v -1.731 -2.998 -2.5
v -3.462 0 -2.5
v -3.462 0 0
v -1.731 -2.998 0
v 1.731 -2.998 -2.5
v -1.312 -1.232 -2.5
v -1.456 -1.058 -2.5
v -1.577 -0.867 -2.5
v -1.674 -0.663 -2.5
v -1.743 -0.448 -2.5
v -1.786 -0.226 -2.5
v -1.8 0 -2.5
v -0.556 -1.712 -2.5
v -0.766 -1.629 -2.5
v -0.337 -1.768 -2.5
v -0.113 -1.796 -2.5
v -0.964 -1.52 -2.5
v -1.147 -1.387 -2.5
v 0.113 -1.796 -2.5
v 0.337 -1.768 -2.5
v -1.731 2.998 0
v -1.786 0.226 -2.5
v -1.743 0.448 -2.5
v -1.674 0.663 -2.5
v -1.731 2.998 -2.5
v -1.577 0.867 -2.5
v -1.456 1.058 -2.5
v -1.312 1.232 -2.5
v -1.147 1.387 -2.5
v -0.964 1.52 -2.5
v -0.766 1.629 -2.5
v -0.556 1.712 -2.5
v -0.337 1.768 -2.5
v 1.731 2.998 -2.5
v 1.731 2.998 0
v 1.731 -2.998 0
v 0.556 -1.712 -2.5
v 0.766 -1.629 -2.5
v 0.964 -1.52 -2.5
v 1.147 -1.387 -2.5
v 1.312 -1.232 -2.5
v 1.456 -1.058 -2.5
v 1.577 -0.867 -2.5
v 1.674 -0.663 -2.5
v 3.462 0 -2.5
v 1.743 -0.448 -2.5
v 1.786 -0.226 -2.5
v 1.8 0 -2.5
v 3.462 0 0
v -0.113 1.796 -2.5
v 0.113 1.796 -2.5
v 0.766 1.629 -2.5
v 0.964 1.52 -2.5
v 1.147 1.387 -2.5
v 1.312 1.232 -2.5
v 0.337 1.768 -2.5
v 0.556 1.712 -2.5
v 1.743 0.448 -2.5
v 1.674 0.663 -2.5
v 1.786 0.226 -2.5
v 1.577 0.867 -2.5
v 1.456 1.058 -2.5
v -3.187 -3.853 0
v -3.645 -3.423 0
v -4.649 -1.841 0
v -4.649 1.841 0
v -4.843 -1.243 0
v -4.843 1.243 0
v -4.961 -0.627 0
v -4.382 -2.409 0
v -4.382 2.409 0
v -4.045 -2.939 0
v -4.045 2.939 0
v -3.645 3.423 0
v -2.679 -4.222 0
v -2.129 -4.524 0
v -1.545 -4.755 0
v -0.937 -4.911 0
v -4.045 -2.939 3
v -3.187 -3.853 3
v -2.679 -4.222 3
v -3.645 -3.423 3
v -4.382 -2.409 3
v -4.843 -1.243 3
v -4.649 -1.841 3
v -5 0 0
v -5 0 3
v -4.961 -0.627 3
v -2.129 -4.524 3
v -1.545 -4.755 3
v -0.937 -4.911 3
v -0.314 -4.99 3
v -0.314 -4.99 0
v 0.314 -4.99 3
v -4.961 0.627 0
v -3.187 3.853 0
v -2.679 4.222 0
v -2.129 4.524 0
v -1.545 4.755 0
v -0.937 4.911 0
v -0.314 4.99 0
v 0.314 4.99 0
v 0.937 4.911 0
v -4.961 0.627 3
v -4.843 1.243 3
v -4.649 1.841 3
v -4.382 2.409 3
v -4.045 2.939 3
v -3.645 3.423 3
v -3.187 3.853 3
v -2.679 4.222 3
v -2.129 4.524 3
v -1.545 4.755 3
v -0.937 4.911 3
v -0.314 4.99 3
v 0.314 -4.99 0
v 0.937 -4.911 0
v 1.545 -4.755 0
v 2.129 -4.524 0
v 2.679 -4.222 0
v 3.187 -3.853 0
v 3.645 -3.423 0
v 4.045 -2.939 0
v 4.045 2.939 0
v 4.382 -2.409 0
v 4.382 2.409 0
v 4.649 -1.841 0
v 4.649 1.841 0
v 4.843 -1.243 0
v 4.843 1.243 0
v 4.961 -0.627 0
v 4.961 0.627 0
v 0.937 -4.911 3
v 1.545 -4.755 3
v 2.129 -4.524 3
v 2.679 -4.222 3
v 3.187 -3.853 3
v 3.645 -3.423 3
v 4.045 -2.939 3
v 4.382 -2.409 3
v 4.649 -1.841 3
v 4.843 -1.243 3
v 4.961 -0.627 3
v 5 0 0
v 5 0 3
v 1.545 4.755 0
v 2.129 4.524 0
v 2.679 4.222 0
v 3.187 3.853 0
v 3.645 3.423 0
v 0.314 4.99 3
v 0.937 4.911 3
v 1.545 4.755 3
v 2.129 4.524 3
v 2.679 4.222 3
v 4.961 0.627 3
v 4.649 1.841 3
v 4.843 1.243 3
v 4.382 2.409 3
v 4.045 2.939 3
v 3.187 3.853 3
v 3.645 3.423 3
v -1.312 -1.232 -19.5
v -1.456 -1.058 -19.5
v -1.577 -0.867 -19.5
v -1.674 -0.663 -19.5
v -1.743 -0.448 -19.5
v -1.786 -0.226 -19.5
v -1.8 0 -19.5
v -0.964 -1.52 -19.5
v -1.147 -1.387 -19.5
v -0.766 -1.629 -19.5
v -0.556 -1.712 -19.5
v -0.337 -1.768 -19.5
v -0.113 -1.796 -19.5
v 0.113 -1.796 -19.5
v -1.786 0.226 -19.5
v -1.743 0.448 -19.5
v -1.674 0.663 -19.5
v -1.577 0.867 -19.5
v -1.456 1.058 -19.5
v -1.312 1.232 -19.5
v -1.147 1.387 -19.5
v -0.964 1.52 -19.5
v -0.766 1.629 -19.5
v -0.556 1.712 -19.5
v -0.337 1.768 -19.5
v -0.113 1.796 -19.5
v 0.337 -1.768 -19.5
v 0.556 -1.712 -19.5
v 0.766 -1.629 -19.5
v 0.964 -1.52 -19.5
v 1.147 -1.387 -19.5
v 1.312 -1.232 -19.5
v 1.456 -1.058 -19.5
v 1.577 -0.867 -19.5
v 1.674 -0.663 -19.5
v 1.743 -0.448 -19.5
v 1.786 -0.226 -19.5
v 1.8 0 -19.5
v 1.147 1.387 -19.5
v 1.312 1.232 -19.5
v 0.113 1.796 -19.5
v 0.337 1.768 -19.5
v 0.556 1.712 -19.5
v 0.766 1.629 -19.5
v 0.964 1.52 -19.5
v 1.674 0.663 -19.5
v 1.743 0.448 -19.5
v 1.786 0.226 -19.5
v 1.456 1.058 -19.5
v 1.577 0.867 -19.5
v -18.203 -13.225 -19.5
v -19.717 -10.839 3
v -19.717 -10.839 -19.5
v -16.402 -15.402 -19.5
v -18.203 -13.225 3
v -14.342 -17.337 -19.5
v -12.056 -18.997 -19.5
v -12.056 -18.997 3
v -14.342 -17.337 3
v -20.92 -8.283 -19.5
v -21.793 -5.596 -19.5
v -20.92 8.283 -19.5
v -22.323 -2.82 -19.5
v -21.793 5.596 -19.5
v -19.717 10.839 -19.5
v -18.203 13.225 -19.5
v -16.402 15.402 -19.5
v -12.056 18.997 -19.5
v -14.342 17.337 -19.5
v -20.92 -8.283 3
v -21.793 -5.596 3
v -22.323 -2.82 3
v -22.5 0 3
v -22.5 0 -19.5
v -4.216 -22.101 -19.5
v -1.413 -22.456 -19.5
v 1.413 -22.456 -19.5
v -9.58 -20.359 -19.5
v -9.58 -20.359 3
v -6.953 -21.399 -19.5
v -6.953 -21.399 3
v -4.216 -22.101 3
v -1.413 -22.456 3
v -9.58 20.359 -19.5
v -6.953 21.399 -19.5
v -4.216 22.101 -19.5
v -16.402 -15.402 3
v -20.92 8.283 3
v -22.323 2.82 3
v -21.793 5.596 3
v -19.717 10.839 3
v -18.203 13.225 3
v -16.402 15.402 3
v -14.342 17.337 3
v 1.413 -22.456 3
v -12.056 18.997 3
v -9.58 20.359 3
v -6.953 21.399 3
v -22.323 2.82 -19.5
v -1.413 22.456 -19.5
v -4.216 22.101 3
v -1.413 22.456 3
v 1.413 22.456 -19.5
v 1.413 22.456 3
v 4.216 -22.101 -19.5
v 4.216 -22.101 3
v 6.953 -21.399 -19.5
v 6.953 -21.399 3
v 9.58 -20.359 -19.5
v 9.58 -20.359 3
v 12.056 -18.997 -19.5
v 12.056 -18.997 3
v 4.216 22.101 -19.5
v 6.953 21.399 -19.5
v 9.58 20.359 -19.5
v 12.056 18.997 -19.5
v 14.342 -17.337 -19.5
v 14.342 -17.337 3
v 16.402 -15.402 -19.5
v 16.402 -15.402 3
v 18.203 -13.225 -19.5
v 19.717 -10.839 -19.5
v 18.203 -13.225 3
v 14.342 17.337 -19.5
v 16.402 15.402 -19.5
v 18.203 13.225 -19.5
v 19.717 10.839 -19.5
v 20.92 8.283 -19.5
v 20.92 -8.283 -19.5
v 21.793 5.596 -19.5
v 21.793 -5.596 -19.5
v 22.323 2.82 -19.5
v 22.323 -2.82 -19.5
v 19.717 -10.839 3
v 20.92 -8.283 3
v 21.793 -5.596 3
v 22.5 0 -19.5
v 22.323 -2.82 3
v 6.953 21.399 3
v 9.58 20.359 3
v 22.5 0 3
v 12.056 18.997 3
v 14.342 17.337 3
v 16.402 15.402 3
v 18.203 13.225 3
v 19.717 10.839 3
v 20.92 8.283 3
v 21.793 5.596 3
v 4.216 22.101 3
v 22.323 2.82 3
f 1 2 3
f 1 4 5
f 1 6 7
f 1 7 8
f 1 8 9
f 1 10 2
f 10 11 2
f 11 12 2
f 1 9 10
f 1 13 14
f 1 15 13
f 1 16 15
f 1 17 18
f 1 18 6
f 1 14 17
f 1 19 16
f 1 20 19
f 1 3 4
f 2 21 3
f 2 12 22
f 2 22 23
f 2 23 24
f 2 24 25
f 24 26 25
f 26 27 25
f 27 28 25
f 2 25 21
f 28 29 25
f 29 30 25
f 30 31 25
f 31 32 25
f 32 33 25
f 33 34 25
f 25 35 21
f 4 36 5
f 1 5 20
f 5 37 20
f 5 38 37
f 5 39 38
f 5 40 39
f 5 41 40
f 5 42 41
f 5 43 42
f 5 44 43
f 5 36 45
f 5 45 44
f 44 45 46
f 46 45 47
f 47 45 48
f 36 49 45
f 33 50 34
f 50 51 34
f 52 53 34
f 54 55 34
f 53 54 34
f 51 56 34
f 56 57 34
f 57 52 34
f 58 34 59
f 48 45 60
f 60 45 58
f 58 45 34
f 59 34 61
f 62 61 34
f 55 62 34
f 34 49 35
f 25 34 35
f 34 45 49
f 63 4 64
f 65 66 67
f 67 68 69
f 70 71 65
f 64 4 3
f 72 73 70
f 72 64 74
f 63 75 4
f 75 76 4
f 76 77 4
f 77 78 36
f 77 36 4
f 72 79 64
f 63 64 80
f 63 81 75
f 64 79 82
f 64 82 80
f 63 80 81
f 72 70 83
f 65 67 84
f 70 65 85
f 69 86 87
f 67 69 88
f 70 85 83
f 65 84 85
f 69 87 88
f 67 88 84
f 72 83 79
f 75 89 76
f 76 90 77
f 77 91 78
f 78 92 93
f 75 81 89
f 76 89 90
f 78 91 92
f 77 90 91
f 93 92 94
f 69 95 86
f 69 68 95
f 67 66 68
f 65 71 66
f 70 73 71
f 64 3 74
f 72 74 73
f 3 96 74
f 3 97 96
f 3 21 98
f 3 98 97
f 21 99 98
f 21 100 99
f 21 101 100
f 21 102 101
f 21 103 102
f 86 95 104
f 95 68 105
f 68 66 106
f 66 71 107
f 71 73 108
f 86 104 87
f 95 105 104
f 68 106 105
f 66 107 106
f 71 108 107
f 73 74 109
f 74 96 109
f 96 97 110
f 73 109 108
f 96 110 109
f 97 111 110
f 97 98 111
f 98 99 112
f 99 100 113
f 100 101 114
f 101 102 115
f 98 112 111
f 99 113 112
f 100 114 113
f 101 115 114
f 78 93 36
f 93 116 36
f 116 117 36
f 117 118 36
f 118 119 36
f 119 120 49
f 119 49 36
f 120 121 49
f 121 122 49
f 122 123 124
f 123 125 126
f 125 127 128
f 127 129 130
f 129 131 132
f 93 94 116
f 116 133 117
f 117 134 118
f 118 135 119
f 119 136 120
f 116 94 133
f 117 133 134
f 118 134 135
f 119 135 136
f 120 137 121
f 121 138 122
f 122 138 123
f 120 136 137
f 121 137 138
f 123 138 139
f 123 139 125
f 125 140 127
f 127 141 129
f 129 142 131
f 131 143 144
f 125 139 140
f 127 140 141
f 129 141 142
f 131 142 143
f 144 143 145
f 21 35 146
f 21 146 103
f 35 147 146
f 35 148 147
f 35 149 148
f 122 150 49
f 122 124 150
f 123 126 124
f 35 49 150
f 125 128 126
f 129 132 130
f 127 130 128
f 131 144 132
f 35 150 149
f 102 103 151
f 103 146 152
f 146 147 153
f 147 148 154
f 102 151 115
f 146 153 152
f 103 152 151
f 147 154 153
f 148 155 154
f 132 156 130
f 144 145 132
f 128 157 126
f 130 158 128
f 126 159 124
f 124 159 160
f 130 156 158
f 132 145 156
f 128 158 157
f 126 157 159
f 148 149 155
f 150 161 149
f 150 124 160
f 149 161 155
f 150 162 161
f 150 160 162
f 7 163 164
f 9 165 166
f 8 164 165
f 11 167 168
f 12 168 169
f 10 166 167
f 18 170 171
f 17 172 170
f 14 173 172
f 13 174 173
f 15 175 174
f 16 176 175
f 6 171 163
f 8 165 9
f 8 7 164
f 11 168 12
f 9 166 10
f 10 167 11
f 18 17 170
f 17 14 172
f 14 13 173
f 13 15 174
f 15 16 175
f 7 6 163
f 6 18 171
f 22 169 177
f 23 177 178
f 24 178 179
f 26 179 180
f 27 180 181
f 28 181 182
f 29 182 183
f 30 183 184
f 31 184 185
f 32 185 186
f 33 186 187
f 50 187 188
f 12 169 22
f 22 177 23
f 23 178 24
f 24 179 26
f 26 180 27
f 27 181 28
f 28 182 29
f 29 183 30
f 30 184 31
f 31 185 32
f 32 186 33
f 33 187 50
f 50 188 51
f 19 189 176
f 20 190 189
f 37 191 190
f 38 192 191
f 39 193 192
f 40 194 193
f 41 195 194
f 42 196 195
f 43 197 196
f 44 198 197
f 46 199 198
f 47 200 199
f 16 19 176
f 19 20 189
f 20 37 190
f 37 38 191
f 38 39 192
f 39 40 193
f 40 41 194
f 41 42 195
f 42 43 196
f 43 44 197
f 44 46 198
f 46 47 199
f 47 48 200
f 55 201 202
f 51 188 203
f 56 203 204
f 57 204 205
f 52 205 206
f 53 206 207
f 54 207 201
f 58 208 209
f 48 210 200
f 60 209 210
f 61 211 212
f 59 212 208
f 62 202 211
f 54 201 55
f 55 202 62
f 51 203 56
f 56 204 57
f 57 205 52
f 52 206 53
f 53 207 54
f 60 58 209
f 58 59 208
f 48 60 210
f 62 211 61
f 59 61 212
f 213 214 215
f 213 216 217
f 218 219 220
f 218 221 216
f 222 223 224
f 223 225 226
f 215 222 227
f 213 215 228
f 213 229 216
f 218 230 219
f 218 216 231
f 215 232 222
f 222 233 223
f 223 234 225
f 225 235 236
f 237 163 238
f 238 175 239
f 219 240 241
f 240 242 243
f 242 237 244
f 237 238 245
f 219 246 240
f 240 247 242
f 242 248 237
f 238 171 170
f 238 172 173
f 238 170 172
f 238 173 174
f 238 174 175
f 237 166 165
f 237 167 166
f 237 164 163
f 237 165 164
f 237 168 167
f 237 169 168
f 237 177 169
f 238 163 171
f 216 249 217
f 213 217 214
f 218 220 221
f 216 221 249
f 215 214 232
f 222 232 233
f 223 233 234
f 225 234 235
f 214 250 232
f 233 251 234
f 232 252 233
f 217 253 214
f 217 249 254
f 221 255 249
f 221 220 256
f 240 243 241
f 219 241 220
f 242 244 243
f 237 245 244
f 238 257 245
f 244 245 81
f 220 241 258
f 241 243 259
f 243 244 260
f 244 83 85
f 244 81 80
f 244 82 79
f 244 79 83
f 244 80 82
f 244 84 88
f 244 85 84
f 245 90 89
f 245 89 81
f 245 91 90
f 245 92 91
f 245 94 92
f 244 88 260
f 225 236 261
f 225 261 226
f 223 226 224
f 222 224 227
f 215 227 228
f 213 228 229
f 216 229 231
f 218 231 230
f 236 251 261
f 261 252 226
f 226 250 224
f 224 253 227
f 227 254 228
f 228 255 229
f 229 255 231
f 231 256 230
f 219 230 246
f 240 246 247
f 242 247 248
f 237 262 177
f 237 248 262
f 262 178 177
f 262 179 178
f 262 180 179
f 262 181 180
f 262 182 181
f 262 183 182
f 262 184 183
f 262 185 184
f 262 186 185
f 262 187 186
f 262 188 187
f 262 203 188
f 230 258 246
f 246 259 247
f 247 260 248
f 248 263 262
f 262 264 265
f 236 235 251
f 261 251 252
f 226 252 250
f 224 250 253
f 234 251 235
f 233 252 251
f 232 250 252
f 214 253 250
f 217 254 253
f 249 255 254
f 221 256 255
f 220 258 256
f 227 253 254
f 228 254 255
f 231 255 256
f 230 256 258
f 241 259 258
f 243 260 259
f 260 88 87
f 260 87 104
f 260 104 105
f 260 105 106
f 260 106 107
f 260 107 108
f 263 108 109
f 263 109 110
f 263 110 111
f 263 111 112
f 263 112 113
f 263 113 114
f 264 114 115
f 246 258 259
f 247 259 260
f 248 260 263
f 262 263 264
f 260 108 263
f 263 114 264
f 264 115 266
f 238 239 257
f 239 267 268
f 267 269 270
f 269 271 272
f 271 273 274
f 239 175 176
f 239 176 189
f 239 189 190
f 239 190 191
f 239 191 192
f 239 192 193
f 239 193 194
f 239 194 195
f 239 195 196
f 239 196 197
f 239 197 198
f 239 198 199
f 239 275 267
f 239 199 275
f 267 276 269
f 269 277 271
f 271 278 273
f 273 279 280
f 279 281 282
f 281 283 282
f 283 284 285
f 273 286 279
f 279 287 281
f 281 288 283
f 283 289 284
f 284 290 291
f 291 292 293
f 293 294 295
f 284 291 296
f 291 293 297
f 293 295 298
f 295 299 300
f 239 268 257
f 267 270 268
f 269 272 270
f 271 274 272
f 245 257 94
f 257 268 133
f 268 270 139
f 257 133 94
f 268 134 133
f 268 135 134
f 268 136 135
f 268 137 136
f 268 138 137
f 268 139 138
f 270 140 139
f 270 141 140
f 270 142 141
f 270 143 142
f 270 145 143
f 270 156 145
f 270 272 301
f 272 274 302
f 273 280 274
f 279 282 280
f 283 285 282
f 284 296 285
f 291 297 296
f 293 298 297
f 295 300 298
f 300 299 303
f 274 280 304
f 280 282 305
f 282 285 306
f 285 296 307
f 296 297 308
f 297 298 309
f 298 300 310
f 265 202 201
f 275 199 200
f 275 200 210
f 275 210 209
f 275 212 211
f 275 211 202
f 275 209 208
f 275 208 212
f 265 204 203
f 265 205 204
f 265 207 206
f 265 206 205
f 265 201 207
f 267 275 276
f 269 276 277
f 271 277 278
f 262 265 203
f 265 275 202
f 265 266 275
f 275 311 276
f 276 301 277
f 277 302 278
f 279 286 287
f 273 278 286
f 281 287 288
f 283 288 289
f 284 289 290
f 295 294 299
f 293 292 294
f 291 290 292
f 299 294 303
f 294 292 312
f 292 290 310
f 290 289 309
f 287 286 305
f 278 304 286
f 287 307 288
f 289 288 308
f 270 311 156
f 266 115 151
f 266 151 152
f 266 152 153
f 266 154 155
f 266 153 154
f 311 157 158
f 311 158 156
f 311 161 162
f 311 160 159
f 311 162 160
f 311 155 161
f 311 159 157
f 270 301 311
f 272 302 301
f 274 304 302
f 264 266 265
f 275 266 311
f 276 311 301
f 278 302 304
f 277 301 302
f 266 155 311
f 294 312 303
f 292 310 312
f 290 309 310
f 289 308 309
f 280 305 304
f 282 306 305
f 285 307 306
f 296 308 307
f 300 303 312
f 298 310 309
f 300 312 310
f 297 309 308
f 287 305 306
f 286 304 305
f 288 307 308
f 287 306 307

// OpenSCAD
$fn = 50;

difference() {
	union() {
		translate(v = [0, 0, -19.5]) {
			cylinder(h = 22.5, r = 22.5);
		}
	}
	union() {
		translate(v = [0, 0, 0]) {
			rotate(a = [0, 0, 0]) {
				difference() {
					union() {
						translate(v = [0, 0, -2.5]) {
							linear_extrude(height = 2.5) {
								polygon(points = [[3.4619999999999997, 0.0], [1.7310000000000003, 2.9981799479017264], [-1.7309999999999992, 2.9981799479017264], [-3.4619999999999997, 4.2397272186481365e-16], [-1.7310000000000014, -2.998179947901726], [1.7309999999999977, -2.9981799479017277]]);
							}
						}
					}
					union();
				}
			}
		}
		#cylinder(h = 3, r = 5.0);
		#translate(v = [0, 0, -100.0]) {
			cylinder(h = 200, r = 1.8);
		}
	}
}
